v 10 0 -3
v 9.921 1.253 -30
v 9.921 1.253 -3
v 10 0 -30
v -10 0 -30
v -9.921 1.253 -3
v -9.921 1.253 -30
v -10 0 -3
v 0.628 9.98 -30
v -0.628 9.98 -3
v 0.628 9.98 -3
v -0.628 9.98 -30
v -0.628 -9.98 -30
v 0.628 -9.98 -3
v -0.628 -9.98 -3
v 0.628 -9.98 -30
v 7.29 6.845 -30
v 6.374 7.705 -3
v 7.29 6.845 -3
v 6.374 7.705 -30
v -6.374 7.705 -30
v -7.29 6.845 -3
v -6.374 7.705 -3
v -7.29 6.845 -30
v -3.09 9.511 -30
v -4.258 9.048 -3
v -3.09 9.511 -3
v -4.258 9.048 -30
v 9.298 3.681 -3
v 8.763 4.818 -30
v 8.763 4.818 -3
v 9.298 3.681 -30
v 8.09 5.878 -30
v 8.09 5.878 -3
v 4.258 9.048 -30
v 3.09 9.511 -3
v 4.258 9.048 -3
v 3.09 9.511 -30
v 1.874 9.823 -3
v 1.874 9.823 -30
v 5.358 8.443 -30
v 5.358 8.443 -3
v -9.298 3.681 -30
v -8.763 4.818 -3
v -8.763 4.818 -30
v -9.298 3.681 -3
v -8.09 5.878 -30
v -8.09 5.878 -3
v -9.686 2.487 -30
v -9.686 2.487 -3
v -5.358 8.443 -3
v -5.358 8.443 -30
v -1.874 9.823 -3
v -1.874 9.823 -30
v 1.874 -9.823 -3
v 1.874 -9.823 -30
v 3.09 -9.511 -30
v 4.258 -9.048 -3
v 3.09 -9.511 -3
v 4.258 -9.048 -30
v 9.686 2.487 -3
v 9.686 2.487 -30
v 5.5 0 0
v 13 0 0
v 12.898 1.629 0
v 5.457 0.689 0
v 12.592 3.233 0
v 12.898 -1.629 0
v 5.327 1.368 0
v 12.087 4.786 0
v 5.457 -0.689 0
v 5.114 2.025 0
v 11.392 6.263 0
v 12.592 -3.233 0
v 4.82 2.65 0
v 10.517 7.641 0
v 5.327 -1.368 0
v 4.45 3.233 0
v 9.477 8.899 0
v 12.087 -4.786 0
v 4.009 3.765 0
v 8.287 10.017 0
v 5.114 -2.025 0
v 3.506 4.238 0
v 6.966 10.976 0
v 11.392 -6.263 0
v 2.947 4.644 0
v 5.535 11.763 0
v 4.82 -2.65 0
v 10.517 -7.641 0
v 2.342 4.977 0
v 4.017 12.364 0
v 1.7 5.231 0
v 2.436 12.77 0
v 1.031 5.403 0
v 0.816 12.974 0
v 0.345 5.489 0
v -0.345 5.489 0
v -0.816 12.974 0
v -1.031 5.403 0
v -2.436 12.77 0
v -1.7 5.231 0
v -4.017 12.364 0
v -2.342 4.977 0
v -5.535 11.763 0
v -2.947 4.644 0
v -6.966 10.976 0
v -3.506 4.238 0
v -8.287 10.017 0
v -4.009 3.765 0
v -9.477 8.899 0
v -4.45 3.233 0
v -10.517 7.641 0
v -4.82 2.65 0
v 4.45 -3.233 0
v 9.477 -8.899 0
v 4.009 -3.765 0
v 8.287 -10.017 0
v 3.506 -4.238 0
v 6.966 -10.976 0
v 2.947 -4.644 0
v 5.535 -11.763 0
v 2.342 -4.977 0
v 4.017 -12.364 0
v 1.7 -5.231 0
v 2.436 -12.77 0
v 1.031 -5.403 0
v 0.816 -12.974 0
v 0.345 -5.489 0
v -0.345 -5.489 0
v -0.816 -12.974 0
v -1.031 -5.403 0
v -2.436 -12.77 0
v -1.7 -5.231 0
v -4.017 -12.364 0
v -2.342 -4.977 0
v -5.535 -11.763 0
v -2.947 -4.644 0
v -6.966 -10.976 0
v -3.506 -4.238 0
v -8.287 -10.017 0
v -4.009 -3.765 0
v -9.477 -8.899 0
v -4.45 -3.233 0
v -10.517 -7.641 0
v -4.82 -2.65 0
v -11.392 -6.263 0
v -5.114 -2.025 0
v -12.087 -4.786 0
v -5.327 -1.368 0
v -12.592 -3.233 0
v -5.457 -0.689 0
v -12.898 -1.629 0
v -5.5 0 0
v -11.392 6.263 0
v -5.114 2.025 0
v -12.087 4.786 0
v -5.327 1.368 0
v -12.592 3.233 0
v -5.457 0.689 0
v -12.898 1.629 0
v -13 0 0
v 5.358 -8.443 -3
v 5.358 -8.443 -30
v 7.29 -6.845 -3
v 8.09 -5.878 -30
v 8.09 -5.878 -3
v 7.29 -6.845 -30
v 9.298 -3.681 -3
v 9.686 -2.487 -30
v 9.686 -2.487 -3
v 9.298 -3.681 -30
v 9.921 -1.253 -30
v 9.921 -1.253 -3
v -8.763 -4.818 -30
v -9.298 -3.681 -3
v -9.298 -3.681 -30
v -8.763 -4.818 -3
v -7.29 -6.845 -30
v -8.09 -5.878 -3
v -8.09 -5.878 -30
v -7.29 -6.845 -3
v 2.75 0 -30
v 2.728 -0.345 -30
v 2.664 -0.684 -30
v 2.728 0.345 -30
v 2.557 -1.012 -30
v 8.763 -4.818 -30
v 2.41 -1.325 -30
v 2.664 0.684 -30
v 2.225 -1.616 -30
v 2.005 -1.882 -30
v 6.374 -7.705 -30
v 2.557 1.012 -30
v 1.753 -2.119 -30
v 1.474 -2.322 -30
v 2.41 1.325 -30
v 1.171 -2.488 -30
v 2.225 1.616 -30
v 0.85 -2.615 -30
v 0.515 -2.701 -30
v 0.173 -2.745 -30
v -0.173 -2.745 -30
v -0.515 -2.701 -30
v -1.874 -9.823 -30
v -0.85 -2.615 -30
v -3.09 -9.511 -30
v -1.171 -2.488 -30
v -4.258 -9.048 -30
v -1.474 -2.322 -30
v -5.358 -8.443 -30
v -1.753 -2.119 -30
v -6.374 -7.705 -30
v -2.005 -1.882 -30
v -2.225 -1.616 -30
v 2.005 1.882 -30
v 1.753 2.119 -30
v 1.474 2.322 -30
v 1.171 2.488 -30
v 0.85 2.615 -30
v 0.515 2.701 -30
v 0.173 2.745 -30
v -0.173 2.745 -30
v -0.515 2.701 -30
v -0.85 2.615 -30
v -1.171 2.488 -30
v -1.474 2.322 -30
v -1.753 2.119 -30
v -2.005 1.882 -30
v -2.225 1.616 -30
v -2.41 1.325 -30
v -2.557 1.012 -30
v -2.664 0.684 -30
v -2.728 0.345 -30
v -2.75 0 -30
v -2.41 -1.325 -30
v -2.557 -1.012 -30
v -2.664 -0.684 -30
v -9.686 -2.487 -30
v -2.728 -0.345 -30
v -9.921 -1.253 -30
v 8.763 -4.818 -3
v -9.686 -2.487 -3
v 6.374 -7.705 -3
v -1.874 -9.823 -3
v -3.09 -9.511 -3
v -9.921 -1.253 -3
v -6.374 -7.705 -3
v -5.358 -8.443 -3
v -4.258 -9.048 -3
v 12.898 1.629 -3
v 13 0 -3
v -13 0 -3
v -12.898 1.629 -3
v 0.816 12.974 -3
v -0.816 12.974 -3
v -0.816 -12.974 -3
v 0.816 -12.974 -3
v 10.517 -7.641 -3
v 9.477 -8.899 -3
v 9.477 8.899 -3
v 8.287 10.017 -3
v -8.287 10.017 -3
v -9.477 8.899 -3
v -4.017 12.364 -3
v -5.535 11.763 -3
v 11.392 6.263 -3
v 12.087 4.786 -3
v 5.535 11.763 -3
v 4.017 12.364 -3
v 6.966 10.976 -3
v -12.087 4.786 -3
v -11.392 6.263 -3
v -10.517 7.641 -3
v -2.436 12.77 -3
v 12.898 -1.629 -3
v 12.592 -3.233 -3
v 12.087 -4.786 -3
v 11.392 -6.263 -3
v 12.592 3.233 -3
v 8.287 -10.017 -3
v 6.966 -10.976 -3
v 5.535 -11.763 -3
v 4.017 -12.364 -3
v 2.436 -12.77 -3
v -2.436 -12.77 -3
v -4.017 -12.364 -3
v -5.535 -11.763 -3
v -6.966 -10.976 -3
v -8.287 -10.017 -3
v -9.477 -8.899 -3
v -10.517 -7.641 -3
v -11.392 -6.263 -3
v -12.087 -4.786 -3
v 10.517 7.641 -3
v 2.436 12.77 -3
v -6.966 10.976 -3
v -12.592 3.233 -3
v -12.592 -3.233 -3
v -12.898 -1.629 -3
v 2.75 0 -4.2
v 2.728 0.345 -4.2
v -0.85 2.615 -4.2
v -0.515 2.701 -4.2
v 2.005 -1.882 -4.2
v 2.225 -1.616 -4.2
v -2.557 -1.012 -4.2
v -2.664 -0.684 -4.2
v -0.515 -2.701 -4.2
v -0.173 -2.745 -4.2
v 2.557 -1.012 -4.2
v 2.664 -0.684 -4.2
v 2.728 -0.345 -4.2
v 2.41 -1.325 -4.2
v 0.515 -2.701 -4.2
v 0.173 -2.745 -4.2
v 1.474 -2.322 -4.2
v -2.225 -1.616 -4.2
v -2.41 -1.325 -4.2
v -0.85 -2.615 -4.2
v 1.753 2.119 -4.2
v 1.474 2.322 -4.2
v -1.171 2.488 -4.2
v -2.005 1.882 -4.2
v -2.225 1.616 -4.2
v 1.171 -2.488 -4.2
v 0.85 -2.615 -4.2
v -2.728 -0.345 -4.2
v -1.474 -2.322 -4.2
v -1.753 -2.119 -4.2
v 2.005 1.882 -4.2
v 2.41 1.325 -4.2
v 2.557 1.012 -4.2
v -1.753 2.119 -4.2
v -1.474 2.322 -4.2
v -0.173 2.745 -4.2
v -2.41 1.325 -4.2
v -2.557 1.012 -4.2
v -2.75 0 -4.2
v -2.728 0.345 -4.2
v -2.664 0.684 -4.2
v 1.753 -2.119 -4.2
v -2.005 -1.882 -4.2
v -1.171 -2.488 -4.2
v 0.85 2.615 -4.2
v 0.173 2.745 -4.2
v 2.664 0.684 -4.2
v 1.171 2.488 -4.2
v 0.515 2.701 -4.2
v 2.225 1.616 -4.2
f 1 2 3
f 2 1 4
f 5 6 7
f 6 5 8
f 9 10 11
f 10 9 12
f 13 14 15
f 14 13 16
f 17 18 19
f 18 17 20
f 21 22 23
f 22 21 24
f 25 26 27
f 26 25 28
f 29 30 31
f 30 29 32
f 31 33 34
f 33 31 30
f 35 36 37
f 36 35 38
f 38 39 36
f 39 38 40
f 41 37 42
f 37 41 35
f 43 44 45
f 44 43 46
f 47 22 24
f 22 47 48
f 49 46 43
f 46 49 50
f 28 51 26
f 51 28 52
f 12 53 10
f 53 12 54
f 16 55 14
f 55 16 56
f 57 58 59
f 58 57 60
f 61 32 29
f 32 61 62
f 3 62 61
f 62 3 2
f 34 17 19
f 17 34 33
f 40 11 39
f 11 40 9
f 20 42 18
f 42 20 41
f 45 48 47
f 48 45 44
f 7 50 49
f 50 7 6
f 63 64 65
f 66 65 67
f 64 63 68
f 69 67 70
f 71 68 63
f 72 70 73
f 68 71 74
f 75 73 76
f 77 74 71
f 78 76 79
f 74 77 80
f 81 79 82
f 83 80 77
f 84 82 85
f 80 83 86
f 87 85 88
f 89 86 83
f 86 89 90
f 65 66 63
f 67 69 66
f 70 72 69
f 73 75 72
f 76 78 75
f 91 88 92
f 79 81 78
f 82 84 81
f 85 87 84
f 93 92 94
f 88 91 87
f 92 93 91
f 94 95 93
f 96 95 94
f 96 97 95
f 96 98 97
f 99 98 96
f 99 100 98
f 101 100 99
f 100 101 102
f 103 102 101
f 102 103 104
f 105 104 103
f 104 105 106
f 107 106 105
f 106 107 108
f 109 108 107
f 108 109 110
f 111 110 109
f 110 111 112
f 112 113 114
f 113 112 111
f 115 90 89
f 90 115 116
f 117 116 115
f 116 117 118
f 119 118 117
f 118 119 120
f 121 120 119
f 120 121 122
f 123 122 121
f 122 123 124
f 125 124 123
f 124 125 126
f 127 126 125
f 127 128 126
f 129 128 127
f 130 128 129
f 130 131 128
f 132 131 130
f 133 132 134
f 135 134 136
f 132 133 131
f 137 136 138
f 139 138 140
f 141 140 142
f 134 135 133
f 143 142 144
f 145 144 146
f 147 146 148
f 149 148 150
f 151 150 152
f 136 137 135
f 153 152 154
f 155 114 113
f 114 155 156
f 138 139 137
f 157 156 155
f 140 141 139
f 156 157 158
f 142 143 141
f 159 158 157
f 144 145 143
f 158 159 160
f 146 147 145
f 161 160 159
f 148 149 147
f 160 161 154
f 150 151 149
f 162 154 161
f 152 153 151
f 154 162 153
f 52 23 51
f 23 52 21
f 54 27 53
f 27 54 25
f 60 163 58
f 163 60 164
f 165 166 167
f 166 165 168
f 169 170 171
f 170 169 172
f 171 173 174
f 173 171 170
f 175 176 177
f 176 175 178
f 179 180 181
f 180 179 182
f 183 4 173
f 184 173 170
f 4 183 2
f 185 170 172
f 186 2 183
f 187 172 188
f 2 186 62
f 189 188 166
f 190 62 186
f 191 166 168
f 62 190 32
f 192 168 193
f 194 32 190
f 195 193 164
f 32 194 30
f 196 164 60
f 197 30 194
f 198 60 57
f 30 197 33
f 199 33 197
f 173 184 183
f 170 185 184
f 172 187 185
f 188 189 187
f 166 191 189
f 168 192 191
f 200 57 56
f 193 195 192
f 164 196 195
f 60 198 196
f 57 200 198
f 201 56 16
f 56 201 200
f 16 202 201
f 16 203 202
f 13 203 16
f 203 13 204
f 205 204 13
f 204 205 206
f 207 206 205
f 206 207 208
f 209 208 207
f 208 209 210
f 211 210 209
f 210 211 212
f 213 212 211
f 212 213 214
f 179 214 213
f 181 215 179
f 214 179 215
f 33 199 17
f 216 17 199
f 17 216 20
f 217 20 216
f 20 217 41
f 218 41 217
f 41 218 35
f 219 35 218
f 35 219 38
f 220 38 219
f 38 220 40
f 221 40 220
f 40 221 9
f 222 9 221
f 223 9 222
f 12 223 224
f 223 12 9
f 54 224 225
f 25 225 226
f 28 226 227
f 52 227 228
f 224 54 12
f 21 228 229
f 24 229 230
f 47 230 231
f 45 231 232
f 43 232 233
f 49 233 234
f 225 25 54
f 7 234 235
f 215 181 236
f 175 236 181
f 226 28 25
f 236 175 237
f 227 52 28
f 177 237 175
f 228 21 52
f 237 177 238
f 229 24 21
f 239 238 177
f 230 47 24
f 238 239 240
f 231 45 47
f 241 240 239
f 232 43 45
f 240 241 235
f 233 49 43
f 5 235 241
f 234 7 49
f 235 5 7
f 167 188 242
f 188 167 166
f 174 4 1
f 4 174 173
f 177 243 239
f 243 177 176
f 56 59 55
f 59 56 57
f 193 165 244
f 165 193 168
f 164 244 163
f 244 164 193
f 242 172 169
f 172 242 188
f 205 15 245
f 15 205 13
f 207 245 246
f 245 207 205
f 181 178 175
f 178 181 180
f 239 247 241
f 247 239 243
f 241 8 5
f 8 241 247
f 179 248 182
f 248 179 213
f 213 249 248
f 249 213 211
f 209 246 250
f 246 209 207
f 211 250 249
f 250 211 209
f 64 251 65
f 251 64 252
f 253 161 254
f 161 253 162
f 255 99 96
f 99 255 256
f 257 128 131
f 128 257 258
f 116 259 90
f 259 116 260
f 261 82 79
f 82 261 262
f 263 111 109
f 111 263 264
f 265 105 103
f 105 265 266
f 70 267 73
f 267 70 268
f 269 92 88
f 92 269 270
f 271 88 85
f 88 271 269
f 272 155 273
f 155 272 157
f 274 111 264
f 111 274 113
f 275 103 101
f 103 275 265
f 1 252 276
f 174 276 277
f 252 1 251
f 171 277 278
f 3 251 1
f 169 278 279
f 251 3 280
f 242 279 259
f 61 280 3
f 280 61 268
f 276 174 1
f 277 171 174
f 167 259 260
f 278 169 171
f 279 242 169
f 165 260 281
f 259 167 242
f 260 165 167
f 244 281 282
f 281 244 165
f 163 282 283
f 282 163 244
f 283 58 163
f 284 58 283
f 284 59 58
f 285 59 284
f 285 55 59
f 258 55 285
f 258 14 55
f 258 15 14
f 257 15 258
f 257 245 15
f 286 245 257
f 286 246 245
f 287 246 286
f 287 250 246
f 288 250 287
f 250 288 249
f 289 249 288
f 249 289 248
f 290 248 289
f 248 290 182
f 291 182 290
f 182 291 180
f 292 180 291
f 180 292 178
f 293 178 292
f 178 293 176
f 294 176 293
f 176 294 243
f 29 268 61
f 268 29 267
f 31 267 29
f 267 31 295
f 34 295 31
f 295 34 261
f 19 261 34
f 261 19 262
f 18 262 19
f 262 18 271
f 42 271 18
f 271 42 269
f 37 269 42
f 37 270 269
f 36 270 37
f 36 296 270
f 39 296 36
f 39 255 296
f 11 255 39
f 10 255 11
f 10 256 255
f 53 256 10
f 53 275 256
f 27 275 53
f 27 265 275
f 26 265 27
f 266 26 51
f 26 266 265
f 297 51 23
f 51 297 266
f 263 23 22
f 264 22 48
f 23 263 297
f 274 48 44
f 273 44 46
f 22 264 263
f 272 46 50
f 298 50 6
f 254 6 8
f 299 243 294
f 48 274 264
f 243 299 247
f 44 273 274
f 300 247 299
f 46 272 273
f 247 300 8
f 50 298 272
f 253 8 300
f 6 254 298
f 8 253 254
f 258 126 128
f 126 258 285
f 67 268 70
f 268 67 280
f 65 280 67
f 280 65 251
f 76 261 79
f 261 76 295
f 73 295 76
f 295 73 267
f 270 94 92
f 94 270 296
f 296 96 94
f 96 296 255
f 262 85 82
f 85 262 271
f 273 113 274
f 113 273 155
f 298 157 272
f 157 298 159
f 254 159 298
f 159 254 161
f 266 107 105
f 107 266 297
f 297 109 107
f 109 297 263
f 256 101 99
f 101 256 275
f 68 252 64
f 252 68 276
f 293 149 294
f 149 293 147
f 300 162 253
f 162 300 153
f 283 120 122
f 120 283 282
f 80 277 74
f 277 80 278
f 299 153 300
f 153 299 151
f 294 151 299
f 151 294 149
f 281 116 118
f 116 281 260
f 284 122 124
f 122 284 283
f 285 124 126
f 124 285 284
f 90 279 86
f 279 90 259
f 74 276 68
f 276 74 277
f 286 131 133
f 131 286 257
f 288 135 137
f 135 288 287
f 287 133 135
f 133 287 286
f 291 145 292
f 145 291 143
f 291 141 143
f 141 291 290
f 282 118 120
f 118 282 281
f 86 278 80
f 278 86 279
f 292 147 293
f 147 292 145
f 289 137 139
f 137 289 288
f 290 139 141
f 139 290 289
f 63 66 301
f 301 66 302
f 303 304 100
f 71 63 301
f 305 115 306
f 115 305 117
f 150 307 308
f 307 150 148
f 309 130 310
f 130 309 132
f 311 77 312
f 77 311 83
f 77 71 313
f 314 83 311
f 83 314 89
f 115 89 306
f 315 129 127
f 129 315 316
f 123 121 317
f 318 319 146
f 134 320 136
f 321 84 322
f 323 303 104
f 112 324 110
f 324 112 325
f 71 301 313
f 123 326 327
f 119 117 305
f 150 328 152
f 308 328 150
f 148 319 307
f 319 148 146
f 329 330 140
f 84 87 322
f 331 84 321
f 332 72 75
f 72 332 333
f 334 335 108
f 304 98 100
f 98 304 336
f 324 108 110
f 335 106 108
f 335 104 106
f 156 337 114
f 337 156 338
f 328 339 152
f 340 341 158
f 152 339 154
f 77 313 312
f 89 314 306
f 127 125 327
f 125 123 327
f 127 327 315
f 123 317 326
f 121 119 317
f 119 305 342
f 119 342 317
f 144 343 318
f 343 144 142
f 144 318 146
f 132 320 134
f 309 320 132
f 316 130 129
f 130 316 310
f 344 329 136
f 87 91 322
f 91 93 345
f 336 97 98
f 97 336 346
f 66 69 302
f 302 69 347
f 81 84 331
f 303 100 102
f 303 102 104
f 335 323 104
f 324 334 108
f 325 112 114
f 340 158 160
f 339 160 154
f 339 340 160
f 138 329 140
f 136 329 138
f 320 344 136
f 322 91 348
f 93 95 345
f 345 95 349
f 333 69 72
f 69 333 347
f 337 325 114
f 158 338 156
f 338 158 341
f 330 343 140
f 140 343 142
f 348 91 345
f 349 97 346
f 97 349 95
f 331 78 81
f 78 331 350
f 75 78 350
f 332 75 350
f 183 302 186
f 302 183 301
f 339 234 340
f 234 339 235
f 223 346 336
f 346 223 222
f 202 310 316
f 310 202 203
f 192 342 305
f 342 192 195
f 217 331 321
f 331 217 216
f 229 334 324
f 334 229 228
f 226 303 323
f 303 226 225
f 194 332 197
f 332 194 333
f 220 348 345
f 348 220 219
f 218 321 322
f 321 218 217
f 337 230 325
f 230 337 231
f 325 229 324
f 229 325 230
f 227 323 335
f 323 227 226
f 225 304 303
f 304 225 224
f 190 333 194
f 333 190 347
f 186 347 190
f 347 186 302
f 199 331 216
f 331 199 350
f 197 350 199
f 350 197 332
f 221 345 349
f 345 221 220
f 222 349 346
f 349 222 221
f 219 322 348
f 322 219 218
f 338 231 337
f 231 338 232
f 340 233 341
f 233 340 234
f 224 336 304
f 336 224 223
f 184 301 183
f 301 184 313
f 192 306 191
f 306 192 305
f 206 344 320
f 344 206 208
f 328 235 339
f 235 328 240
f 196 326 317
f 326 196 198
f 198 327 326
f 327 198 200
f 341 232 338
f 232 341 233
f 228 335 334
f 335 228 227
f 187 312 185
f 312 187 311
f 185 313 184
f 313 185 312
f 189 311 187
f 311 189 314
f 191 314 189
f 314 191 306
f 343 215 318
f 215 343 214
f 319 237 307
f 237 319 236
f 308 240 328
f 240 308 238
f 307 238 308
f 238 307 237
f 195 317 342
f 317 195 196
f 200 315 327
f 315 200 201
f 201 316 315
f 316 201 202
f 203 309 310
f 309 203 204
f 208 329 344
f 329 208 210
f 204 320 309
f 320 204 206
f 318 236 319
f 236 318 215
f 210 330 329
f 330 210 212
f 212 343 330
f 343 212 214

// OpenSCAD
$fn = 50;


difference() {
	union() {
		translate(v = [0, 0, -30.0000000000]) {
			cylinder(h = 30, r = 10.0000000000);
		}
		translate(v = [0, 0, -3.0000000000]) {
			cylinder(h = 3, r = 13.0000000000);
		}
	}
	union() {
		translate(v = [0, 0, 0]) {
			rotate(a = [0, 0, 0]) {
				difference() {
					union() {
						#translate(v = [0, 0, -30.0000000000]) {
							cylinder(h = 30, r = 2.2500000000);
						}
						#translate(v = [0, 0, -4.2000000000]) {
							cylinder(h = 4.2000000000, r = 10.0000000000, r1 = 2.7500000000, r2 = 5.5000000000);
						}
						#translate(v = [0, 0, -30.0000000000]) {
							cylinder(h = 30, r = 2.7500000000);
						}
						#translate(v = [0, 0, -30.0000000000]) {
							cylinder(h = 30, r = 2.2500000000);
						}
					}
					union();
				}
			}
		}
	}
}
